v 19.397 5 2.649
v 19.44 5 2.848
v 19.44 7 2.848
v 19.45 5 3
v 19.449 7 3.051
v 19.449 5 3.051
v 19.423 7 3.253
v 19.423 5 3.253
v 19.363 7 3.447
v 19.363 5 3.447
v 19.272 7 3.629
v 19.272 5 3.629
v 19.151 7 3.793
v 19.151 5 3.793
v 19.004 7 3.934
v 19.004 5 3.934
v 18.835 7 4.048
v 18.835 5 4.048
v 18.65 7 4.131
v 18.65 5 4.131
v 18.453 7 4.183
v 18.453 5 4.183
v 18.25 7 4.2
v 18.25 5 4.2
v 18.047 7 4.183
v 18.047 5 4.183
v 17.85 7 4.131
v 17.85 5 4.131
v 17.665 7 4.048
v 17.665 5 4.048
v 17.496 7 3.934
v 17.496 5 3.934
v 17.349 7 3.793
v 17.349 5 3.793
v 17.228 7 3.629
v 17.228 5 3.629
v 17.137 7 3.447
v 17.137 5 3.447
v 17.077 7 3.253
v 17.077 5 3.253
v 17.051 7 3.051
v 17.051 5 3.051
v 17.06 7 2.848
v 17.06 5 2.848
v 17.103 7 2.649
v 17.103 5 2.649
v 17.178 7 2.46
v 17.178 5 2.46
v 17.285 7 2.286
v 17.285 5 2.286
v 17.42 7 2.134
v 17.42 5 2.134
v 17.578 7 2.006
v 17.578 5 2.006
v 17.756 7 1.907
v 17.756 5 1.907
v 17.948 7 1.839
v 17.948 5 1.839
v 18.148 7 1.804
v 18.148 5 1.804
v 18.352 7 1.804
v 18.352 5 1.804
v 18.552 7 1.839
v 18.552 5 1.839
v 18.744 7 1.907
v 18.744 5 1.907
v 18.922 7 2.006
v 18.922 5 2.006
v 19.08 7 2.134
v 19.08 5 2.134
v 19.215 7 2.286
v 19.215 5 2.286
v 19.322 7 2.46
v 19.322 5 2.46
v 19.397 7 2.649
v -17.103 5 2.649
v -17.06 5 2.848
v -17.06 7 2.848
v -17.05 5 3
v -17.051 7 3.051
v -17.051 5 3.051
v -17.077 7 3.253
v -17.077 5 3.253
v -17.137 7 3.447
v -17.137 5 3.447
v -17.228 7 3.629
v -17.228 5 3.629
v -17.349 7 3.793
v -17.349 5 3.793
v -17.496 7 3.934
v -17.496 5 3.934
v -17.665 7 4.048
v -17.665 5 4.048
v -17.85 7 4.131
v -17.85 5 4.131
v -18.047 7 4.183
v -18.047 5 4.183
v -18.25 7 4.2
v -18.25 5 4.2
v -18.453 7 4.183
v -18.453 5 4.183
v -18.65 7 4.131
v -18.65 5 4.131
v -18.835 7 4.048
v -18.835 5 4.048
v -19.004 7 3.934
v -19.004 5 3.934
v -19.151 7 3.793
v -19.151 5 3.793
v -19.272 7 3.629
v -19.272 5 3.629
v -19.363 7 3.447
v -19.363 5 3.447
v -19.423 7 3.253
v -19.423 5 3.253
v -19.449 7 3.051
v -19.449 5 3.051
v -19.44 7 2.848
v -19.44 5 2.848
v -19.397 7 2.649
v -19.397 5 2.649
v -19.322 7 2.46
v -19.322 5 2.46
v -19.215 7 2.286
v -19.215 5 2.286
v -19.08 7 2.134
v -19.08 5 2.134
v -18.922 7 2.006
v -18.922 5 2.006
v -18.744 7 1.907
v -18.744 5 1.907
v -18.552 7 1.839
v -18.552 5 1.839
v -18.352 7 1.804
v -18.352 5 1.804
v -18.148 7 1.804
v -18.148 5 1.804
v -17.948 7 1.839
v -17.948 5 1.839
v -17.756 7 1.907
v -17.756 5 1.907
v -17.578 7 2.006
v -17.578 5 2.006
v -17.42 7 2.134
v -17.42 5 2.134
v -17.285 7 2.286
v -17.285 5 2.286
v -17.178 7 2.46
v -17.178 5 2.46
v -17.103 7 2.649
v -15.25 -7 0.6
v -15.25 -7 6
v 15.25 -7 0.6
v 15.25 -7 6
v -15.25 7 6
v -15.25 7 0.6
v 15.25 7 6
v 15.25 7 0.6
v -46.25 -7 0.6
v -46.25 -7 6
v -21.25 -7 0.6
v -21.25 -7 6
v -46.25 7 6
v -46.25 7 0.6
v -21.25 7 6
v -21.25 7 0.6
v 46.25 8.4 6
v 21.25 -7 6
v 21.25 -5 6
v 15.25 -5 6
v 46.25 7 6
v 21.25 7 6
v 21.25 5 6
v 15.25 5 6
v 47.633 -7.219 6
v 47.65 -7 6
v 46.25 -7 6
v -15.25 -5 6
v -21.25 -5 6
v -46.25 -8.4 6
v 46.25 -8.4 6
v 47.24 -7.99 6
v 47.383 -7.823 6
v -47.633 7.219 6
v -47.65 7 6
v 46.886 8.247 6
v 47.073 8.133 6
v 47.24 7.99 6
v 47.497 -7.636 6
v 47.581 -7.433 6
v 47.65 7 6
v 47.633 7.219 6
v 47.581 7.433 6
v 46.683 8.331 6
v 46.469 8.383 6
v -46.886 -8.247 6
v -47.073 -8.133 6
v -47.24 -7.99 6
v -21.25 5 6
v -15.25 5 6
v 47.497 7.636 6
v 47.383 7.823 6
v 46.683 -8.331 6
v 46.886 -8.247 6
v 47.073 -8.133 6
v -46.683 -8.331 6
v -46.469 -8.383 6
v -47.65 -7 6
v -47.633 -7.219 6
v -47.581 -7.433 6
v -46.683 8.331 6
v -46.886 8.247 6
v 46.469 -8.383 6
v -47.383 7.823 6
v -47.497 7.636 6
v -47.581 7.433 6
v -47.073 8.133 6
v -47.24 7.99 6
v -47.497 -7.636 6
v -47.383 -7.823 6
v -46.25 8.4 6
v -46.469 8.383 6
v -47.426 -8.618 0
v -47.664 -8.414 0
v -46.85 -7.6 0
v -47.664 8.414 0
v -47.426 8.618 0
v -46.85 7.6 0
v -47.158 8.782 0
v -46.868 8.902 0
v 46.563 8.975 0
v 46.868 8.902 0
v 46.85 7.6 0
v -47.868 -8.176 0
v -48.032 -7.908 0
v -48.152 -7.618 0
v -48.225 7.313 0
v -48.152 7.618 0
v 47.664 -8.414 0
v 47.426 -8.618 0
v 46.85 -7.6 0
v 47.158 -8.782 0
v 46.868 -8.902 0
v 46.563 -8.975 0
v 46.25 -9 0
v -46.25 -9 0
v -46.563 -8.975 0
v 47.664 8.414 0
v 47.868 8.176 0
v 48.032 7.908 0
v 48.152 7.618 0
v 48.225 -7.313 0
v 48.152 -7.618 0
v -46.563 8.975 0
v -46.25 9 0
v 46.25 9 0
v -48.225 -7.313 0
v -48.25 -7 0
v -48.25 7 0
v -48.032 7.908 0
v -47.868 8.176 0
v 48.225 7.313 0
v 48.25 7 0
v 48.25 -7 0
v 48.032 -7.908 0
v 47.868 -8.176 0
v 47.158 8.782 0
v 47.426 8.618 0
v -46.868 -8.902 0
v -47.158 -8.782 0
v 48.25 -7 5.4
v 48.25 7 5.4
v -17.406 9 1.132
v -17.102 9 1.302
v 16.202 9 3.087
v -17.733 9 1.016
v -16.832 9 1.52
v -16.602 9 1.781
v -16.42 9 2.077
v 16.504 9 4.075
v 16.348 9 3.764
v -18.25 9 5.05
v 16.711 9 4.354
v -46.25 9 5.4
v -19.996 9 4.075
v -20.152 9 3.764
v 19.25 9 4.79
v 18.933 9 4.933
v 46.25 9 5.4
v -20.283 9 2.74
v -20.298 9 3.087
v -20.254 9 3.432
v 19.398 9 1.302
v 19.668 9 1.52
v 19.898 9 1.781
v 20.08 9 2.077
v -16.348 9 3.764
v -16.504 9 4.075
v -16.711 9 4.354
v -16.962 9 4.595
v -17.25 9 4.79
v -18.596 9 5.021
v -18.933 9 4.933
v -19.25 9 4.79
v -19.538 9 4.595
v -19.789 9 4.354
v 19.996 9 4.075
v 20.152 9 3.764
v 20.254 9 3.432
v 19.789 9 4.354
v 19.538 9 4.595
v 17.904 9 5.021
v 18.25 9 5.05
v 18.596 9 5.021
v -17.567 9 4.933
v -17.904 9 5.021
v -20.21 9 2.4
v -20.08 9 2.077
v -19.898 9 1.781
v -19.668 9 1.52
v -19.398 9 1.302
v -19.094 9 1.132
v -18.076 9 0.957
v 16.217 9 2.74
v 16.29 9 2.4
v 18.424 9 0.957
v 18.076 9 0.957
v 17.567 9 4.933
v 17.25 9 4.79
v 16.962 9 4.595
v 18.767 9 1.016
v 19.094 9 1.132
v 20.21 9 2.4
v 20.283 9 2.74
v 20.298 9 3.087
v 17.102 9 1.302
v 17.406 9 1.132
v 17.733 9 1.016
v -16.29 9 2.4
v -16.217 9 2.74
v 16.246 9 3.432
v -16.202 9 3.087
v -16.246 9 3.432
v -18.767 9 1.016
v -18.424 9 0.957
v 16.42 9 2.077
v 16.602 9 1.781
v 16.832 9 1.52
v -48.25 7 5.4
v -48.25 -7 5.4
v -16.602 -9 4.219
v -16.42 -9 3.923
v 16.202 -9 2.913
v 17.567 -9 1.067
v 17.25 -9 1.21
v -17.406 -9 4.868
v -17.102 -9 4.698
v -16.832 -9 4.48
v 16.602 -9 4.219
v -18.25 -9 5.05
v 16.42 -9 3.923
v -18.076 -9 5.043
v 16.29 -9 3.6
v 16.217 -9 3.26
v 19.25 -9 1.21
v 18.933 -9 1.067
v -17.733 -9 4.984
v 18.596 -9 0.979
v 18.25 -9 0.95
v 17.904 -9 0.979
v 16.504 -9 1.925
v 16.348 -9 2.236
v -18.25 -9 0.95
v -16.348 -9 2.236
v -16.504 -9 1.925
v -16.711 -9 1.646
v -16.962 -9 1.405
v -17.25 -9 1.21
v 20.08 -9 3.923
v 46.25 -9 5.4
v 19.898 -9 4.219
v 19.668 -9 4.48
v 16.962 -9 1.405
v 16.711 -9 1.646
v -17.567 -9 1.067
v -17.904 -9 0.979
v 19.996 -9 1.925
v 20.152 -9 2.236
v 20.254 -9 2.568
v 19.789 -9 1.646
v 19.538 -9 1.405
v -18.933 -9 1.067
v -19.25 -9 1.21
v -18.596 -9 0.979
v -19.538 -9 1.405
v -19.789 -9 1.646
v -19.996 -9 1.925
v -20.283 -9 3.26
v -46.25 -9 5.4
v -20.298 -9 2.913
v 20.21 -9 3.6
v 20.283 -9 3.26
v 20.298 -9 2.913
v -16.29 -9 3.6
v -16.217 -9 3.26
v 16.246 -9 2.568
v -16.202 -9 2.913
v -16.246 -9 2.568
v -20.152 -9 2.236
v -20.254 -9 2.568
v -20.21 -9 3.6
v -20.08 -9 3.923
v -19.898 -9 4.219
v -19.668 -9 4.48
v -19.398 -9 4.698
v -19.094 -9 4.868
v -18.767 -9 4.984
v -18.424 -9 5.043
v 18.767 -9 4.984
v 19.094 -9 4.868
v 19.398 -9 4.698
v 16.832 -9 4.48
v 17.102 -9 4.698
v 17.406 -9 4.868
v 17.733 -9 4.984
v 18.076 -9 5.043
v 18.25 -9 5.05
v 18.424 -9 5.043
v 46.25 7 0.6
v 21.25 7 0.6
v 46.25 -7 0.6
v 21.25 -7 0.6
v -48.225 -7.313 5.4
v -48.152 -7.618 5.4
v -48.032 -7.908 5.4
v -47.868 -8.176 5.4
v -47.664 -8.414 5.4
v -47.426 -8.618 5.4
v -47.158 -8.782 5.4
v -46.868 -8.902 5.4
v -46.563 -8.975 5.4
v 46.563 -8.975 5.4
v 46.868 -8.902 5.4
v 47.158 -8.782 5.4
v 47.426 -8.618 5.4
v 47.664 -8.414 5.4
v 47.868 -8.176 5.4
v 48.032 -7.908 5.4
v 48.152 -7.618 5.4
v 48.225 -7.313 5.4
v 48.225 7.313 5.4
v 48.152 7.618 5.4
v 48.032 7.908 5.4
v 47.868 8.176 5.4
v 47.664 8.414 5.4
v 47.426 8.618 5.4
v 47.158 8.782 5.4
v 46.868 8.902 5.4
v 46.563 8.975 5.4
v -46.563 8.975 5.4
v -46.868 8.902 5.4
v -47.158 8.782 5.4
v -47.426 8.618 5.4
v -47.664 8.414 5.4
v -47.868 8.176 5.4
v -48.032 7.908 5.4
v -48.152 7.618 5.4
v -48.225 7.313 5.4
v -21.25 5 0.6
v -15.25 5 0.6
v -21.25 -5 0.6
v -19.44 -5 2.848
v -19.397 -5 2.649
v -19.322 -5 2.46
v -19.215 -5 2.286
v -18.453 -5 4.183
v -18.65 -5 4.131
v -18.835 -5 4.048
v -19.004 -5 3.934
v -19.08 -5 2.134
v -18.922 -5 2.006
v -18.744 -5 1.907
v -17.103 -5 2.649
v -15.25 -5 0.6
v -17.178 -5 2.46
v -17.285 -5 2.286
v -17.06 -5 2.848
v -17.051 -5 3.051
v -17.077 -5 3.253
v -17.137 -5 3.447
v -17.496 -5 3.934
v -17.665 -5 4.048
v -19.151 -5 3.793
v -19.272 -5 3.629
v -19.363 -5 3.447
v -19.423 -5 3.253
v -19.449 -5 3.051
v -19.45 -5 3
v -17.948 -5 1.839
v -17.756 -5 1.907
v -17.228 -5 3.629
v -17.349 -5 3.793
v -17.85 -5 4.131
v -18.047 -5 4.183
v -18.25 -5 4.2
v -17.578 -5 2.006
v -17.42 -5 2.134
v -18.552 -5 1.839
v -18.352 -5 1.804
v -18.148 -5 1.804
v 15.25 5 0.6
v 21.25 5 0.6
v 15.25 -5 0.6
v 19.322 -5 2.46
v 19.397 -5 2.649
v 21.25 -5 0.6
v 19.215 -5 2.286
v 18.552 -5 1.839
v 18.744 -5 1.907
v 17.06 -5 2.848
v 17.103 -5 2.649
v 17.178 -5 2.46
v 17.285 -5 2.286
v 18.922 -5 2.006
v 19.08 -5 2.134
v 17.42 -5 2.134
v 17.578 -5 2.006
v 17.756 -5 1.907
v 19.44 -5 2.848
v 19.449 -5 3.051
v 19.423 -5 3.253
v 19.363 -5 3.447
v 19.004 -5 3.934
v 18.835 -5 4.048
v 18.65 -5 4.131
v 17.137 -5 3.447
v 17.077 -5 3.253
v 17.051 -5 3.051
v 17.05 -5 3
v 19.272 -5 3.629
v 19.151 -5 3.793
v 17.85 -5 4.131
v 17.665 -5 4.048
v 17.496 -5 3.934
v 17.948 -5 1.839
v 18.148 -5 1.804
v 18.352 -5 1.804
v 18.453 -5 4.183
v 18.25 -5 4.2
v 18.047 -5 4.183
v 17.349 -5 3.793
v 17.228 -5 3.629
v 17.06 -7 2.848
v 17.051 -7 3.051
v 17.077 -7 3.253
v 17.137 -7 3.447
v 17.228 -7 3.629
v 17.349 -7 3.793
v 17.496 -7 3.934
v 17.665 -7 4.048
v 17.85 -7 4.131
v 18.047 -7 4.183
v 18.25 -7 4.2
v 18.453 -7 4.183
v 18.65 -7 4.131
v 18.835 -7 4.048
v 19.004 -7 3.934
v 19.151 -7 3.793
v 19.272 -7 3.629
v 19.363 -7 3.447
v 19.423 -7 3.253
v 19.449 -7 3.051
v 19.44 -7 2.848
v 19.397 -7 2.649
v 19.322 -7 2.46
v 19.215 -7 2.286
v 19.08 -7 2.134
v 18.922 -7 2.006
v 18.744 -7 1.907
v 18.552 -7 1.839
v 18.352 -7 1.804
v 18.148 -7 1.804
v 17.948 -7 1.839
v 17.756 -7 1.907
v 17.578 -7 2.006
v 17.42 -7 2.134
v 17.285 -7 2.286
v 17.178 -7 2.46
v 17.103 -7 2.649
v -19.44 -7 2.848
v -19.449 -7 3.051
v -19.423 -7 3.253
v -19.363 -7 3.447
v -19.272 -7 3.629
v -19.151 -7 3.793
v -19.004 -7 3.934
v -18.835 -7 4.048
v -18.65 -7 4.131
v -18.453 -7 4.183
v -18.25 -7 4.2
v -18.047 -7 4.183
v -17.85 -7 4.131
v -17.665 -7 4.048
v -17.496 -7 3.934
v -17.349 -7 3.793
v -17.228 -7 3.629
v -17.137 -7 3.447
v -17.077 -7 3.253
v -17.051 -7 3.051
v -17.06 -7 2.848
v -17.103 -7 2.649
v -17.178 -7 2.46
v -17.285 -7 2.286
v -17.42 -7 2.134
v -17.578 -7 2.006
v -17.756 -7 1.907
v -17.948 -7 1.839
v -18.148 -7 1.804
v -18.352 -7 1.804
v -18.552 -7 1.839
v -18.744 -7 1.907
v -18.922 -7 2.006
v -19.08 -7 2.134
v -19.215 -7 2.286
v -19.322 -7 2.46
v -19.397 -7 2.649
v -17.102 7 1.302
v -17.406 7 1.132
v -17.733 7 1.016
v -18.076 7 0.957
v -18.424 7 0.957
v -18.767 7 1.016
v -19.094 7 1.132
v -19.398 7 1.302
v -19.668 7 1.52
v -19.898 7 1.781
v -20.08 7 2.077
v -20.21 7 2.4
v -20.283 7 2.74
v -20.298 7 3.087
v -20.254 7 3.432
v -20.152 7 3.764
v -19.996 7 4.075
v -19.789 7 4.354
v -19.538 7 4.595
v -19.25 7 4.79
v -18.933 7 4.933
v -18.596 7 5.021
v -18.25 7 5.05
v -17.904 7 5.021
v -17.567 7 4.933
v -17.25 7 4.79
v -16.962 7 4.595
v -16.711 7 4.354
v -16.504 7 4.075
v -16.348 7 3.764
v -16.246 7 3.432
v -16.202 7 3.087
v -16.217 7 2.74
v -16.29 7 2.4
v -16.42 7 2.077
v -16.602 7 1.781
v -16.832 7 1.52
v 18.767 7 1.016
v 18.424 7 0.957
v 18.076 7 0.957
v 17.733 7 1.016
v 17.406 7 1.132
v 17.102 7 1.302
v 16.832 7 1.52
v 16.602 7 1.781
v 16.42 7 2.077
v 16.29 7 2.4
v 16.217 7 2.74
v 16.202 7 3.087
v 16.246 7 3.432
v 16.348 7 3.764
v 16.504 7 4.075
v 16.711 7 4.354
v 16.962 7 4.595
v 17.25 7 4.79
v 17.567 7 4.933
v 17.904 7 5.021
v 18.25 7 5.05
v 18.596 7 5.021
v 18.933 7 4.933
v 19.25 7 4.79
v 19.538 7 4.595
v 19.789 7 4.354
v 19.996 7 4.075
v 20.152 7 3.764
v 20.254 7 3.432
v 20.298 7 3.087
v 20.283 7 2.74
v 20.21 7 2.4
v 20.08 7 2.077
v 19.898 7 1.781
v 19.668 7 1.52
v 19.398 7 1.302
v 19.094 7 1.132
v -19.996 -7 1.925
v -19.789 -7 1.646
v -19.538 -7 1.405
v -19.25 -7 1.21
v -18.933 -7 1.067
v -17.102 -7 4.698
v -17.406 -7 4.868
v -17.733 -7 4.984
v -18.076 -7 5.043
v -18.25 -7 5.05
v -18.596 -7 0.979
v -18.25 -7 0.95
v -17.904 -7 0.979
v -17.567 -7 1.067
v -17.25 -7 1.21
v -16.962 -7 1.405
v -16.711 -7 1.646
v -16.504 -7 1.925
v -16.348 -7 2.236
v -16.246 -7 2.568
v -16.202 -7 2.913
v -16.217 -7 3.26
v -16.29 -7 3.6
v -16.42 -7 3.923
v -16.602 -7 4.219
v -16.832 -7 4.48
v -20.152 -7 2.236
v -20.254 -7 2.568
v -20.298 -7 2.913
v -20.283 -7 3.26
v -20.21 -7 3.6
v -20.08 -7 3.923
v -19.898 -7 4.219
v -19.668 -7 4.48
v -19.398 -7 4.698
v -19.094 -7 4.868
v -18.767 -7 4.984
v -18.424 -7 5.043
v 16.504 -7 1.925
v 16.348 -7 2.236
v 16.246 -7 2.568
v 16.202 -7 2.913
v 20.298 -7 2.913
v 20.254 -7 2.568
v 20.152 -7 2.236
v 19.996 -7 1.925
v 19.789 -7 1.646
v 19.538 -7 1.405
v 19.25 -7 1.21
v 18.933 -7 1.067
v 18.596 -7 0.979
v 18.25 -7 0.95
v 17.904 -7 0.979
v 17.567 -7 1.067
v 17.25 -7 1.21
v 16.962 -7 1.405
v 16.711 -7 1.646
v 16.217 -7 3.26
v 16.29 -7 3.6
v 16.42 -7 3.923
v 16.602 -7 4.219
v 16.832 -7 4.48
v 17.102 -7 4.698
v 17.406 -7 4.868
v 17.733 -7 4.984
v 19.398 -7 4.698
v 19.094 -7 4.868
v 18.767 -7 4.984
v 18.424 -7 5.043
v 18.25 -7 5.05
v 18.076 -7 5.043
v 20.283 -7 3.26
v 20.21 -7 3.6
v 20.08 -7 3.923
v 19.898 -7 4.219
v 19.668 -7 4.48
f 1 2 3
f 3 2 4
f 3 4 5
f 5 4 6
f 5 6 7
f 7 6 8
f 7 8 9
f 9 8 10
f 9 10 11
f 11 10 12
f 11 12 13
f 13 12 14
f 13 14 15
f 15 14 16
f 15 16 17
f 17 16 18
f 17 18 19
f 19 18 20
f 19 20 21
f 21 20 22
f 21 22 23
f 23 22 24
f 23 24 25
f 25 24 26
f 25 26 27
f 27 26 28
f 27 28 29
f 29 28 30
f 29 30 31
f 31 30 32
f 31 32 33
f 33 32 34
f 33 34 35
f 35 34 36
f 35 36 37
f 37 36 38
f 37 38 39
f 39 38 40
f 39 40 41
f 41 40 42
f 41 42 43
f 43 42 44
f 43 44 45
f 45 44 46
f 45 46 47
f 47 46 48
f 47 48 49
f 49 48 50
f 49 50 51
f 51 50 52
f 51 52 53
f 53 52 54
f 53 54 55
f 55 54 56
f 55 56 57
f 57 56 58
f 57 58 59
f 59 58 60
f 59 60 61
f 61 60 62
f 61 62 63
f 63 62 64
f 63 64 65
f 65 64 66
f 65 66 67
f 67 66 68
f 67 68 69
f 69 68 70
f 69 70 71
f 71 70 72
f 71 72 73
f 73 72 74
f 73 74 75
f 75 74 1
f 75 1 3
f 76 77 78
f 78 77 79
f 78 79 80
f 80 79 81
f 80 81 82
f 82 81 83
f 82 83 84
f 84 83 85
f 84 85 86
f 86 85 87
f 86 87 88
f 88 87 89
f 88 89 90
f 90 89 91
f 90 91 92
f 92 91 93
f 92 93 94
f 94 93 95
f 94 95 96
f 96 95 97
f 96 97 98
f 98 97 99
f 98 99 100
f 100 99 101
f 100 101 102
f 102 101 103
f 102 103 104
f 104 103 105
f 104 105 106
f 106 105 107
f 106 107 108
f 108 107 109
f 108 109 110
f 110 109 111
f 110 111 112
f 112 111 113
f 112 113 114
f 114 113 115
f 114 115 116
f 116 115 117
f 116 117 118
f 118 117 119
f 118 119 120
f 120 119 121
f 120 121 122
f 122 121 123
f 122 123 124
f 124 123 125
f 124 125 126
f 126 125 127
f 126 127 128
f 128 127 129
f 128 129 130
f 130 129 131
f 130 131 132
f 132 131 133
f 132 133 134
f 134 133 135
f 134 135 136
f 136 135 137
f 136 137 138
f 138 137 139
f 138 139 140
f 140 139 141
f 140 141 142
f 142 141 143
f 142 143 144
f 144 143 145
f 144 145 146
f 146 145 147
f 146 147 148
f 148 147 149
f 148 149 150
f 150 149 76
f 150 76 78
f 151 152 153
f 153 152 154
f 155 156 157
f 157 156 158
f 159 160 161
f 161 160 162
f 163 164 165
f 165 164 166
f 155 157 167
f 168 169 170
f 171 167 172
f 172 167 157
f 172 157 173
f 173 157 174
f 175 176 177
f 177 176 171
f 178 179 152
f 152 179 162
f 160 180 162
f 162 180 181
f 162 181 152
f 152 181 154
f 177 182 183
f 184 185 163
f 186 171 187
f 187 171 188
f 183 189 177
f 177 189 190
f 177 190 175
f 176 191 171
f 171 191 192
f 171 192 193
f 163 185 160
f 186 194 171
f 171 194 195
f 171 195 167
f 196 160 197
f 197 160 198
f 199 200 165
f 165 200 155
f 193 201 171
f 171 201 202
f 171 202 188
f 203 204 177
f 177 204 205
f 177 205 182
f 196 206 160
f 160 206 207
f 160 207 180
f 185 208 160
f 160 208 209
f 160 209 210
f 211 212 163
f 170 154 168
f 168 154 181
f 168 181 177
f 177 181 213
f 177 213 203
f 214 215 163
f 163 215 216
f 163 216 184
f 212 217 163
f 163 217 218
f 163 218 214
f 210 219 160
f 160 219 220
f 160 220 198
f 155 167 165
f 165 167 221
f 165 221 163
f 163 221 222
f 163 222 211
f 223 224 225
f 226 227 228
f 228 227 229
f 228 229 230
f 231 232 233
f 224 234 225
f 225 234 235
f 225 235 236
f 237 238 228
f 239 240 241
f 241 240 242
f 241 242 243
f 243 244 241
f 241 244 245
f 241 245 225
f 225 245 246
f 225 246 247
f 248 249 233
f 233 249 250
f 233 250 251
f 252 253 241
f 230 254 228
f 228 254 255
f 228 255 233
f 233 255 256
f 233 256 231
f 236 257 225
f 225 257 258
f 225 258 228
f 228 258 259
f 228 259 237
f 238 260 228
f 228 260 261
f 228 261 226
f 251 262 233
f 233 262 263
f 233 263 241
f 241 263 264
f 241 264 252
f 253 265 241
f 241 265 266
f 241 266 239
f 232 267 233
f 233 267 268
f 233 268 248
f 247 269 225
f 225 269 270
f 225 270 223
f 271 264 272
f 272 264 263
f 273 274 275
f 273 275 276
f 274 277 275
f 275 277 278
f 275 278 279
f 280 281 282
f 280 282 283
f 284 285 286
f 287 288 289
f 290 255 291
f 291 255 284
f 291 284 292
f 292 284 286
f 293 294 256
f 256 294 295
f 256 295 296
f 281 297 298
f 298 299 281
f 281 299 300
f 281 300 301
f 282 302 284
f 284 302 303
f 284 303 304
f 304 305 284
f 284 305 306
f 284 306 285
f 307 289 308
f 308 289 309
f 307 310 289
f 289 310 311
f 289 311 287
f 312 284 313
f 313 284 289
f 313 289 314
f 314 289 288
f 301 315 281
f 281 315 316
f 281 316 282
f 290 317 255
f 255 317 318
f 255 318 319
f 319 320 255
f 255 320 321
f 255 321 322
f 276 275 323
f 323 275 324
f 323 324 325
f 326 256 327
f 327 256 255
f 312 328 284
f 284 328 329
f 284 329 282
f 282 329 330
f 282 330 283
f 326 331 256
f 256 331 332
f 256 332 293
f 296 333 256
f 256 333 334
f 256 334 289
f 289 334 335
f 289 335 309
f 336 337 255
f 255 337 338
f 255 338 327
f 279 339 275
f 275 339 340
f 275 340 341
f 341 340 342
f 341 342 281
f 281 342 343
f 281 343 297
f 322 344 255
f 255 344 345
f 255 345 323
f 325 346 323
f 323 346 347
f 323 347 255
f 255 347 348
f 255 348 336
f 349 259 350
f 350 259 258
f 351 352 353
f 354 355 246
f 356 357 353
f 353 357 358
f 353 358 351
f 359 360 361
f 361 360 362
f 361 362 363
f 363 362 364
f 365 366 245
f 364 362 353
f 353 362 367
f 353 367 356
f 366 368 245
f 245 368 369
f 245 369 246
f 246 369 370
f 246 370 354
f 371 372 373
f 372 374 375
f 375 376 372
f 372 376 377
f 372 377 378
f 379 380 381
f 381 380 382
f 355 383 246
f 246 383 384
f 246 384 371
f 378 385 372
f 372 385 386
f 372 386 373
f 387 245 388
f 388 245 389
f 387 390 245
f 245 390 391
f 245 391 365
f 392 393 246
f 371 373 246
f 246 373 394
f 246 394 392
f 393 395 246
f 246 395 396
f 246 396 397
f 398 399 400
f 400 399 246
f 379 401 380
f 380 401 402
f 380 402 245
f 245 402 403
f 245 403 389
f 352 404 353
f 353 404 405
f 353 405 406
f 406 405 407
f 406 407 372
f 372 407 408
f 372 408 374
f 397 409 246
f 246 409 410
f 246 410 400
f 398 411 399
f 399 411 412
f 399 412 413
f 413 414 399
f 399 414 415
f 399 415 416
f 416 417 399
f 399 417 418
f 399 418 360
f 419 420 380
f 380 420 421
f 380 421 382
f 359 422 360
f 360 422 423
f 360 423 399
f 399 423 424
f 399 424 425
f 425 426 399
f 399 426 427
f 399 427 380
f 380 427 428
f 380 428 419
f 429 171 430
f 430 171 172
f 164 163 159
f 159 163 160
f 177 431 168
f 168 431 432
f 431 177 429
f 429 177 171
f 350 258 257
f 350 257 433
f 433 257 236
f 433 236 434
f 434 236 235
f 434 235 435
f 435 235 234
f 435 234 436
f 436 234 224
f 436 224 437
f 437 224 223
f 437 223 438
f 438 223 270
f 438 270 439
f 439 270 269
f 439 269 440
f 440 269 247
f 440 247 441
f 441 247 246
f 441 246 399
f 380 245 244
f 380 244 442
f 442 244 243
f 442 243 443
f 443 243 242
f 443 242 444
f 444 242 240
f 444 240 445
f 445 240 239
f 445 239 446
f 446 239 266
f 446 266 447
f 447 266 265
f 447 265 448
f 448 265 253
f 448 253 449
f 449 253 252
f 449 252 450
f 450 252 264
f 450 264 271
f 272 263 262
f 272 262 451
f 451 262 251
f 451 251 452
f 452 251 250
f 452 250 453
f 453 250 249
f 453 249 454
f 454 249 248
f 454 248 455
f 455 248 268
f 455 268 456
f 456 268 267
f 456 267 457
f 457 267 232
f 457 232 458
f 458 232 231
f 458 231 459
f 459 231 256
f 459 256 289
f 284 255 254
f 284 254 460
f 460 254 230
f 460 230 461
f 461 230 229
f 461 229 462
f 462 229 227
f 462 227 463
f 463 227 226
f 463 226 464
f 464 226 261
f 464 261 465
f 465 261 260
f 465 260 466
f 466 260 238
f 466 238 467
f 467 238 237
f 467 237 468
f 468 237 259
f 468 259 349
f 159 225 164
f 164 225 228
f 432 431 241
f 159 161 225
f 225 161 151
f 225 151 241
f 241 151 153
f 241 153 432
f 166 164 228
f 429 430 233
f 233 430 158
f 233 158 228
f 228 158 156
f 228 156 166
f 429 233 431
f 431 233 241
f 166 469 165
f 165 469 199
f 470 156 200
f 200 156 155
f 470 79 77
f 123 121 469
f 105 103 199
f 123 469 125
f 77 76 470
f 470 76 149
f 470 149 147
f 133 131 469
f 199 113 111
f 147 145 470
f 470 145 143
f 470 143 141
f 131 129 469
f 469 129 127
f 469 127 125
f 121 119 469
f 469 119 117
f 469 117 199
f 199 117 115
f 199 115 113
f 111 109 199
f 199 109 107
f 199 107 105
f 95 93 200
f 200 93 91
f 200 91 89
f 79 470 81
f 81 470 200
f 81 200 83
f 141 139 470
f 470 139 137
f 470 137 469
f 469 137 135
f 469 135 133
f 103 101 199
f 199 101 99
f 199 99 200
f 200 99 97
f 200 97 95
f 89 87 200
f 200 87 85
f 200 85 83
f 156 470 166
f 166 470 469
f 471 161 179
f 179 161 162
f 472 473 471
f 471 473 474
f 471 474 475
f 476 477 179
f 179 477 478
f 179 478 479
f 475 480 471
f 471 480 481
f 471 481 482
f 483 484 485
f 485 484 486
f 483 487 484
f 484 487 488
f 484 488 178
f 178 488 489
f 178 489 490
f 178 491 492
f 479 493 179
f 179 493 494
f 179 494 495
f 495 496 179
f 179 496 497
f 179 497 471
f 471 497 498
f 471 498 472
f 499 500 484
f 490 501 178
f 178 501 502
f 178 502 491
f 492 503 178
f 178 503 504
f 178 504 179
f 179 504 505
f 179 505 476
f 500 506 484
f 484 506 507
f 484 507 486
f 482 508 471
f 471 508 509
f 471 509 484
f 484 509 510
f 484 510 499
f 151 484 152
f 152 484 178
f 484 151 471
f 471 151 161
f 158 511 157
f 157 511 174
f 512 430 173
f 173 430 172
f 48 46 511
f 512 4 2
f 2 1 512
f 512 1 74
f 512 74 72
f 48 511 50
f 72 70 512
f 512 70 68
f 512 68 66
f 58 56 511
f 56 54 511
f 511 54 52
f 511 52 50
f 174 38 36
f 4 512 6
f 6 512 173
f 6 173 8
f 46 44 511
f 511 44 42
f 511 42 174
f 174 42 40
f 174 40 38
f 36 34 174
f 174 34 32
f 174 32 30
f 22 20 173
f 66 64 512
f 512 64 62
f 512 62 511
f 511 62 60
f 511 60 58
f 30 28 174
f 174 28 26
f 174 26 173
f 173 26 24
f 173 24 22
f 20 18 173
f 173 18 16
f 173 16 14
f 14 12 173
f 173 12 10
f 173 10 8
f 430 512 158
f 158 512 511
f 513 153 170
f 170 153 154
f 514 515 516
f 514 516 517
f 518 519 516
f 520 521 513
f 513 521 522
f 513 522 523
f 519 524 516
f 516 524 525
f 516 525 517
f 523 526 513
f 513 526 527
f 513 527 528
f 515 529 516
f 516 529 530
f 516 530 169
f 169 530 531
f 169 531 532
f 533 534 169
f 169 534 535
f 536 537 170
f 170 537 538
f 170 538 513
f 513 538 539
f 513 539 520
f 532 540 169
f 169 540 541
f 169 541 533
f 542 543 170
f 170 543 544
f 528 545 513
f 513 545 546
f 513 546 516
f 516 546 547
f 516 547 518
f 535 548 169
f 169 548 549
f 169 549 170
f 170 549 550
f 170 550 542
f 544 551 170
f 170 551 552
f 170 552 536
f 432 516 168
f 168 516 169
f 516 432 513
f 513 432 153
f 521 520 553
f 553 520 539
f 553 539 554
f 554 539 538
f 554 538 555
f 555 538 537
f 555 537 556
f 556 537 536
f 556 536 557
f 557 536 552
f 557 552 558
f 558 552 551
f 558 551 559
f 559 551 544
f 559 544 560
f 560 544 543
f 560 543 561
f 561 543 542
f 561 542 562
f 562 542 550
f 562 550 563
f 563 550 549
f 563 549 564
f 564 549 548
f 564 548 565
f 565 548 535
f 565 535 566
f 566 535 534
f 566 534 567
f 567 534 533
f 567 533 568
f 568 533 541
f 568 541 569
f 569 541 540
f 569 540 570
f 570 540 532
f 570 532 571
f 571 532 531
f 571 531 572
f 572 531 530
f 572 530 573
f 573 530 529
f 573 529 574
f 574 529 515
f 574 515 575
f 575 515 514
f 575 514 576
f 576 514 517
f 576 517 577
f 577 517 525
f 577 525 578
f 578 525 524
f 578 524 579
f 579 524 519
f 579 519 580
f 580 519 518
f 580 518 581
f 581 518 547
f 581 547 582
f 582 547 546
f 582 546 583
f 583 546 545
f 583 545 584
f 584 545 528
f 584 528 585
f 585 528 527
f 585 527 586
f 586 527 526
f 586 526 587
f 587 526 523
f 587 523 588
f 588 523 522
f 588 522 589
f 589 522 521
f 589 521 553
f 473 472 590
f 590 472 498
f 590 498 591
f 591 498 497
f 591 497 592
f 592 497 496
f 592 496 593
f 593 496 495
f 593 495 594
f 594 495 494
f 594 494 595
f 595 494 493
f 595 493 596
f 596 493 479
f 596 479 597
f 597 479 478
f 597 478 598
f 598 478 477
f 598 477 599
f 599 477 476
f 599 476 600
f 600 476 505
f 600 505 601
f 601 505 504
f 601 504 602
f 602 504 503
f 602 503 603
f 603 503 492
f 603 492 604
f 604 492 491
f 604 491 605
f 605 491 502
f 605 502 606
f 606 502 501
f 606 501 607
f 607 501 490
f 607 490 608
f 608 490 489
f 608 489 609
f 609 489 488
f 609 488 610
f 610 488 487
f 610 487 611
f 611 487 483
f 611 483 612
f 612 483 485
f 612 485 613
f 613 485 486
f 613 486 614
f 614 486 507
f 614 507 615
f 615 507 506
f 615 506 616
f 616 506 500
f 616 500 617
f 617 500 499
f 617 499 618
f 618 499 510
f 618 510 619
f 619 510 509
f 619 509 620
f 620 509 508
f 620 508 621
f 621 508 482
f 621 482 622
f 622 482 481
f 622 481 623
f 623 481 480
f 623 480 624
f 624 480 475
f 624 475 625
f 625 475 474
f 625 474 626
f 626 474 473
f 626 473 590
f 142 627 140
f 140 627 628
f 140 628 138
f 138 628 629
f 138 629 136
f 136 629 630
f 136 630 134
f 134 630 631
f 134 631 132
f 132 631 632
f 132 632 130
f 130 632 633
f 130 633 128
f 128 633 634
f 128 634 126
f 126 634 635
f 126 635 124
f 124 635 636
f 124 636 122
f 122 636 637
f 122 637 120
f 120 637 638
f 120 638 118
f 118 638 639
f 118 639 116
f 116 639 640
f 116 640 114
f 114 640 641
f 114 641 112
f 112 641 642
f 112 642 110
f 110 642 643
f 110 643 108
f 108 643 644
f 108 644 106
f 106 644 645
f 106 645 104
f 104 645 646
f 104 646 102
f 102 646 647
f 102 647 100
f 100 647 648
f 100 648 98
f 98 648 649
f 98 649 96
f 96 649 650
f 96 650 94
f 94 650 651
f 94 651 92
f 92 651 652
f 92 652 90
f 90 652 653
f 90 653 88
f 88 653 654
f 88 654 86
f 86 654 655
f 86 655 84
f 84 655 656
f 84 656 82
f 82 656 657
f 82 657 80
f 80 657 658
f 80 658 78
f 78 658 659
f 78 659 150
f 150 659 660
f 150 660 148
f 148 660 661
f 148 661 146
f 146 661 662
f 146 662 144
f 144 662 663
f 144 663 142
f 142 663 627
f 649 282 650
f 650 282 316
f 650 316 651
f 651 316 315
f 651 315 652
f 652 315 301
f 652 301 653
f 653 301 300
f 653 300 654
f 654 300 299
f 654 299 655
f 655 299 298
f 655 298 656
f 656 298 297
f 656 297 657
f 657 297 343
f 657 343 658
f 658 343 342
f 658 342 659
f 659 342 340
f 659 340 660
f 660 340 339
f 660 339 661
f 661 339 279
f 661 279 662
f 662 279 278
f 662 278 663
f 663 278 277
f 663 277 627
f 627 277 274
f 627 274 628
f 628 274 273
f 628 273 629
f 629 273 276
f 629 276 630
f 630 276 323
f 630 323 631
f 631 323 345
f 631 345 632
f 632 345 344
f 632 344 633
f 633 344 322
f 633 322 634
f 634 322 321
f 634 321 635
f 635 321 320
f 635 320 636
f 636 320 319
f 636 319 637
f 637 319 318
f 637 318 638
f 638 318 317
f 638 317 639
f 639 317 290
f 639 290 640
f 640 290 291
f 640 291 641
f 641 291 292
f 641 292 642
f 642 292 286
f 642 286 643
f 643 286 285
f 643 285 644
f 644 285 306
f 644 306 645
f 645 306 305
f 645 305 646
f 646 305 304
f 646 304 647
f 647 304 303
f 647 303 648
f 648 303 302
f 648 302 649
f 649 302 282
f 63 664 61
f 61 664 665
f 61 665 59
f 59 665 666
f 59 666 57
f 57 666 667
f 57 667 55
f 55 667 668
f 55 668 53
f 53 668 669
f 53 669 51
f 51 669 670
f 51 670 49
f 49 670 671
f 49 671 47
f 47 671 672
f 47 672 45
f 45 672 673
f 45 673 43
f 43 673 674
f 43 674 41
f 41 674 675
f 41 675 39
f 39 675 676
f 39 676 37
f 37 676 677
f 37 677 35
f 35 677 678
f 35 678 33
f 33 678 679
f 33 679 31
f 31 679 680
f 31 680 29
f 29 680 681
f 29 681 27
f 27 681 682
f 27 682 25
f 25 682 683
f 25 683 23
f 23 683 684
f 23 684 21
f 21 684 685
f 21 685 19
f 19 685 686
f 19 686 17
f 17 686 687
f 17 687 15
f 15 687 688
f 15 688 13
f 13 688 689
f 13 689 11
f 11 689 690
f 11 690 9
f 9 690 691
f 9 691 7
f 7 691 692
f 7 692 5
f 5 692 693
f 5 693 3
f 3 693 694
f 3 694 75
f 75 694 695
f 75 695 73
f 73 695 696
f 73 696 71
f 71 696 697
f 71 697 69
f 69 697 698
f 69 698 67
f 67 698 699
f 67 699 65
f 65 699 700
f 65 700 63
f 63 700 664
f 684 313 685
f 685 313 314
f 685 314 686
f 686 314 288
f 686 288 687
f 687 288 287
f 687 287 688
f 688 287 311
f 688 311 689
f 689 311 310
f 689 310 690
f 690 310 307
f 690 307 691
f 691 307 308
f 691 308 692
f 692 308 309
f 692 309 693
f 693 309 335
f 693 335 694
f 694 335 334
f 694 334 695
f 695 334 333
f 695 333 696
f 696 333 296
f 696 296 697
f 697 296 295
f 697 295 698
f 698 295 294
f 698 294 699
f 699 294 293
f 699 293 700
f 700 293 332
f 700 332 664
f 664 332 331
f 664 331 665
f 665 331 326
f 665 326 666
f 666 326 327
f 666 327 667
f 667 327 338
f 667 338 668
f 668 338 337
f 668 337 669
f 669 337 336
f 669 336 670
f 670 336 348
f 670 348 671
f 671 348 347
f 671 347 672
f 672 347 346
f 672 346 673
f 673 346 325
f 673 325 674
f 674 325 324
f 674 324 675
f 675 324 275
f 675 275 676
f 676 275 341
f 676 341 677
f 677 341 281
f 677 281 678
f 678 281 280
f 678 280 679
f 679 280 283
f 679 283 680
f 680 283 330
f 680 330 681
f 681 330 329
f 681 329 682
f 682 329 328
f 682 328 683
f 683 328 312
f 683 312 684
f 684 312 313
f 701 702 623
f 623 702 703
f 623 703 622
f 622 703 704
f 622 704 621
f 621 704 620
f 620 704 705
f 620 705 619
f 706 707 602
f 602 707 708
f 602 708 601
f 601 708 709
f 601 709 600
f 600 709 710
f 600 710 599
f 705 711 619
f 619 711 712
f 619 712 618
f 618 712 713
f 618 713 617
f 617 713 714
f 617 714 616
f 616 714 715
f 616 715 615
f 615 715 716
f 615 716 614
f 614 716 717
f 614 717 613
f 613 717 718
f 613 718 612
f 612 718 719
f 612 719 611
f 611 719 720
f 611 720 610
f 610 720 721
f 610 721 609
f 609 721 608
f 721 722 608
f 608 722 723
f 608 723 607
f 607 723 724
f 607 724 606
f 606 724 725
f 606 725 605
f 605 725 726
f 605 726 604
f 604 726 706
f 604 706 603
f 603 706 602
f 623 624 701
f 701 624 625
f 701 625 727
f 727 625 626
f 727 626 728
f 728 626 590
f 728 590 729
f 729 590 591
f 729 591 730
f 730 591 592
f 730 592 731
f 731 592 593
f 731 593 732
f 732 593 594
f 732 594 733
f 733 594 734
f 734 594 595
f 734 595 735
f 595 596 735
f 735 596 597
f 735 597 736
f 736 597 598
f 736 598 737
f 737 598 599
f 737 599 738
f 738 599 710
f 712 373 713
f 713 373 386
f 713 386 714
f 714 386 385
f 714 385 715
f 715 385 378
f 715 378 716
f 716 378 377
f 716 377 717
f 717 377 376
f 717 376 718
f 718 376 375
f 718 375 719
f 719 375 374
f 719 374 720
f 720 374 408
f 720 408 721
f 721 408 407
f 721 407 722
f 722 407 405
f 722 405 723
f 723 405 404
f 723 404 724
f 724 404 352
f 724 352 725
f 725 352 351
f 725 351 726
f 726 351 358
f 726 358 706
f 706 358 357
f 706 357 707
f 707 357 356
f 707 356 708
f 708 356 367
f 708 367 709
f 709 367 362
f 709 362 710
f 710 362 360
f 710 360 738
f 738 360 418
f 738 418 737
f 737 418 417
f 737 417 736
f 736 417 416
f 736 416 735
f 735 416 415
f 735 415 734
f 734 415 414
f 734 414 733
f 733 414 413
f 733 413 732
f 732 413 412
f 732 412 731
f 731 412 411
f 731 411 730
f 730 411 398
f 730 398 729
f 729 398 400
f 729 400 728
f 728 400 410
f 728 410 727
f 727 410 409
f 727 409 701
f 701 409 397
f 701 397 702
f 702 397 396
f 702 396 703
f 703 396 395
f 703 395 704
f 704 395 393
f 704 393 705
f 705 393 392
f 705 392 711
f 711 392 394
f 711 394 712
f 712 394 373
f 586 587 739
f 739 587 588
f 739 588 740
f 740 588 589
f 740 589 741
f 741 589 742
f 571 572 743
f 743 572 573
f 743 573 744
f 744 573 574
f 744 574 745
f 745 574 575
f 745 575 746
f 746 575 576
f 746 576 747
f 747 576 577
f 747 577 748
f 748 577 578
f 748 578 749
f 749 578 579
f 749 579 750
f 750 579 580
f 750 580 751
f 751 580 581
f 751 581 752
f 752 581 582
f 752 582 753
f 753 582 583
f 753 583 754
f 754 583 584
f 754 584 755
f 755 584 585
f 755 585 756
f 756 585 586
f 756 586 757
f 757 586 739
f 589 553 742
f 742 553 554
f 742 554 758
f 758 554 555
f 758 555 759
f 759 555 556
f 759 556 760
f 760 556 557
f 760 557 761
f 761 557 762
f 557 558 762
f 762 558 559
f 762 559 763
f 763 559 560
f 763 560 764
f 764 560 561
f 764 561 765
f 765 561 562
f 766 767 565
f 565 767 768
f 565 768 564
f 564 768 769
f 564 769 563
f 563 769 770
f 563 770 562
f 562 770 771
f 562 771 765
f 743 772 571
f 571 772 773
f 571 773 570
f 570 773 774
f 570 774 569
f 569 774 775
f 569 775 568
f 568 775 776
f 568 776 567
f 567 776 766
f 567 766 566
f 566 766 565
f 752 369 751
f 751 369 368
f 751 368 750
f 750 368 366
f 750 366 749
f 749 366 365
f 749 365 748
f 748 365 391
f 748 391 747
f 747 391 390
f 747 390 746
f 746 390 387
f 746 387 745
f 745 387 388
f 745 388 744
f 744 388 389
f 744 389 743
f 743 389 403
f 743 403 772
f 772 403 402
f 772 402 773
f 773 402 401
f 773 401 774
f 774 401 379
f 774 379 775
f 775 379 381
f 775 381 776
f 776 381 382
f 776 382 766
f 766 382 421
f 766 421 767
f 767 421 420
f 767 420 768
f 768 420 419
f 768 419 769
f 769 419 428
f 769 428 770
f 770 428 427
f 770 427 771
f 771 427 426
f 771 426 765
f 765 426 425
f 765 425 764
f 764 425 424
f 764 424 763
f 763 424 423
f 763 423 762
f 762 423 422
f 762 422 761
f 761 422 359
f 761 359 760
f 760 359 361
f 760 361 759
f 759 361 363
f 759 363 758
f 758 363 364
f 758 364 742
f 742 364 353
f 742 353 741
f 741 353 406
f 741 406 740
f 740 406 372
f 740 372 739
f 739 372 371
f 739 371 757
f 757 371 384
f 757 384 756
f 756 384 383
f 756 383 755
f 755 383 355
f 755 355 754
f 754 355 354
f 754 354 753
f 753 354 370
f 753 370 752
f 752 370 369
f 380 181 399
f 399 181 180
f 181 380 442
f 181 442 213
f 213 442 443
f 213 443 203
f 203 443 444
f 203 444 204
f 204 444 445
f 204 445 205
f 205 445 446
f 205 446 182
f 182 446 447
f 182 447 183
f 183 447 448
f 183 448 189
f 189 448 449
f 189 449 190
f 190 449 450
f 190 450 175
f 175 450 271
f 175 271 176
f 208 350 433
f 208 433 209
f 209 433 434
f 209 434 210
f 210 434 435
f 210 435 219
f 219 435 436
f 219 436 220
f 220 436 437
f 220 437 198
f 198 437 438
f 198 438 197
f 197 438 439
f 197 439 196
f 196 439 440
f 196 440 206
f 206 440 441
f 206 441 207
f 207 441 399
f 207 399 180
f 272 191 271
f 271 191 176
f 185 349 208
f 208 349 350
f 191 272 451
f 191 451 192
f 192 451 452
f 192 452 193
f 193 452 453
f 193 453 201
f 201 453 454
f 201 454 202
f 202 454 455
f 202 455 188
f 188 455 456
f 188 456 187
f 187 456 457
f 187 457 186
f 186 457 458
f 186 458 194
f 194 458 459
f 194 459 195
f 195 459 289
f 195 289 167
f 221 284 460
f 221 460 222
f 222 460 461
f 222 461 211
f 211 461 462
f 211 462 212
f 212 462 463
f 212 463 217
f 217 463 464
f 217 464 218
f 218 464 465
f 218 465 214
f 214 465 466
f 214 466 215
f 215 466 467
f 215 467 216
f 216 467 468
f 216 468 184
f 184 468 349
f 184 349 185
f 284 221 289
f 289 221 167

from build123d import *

# Parameters (mm, degrees)
SKETCH_1_W          = 96.5
SKETCH_1_H          = 18
SKETCH_1_W_2        = 92.5
SKETCH_1_H_2        = 14
EXTRUDE_1_DEPTH     = 6
FILLET_1_R          = 2
CHAMFER_1_SIZE      = 0.6
SKETCH_2_W          = 6
SKETCH_2_H          = 2
EXTRUDE_2_DEPTH     = 5.4
SKETCH_3_R          = 1.2
CUT_EXTRUDE_1_DEPTH = 52.846528331
SKETCH_4_R          = 2.05
CUT_EXTRUDE_2_DEPTH = 2
CUT_EXTRUDE_START   = -16
SKETCH_4_2_R        = 2.05
CUT_EXTRUDE_3_DEPTH = 2
CHAMFER_2_SIZE      = 0.6


with BuildPart() as part:
    # 草图1 → 凸台-拉伸1 (new body)
    with BuildSketch(Plane.XY):
        Rectangle(SKETCH_1_W, SKETCH_1_H)
        Rectangle(SKETCH_1_W_2, SKETCH_1_H_2, mode=Mode.SUBTRACT)
    extrude(amount=EXTRUDE_1_DEPTH)

    # 圆角1
    fillet_1_edges = [part.edges().sort_by_distance(p)[0] for p in [
        (48.25, -9, 3),
        (-48.25, -9, 3),
        (-48.25, 9, 3),
        (48.25, 9, 3),
    ]]
    fillet(fillet_1_edges, radius=FILLET_1_R)

    # 倒角1
    chamfer_1_edges = [part.edges().sort_by_distance(p)[0] for p in [
        (0, 7, 0),
        (-46.25, 0, 0),
        (0, -7, 0),
        (46.25, 0, 0),
    ]]
    chamfer(chamfer_1_edges, length=CHAMFER_1_SIZE)

    # 草图2 → 凸台-拉伸2 (add)
    with BuildSketch(Plane.XY.offset(6)):
        with Locations((-18.25, 6)):
            Rectangle(SKETCH_2_W, SKETCH_2_H)
        with Locations((-18.25, -6)):
            Rectangle(SKETCH_2_W, SKETCH_2_H)
        with Locations((18.25, 6)):
            Rectangle(SKETCH_2_W, SKETCH_2_H)
        with Locations((18.25, -6)):
            Rectangle(SKETCH_2_W, SKETCH_2_H)
    extrude(amount=-EXTRUDE_2_DEPTH)

    # 草图3 → 切除-拉伸1 (cut, through all)
    with BuildSketch(Plane(origin=(0, 9, 0), x_dir=(1, 0, 0), z_dir=(0, 1, 0))):
        with Locations(Location((-18.25, -3, 0), (0, 0, 270))):
            Circle(SKETCH_3_R)
        with Locations(Location((18.25, -3, 0), (0, 0, 270))):
            Circle(SKETCH_3_R)
    extrude(amount=-CUT_EXTRUDE_1_DEPTH, mode=Mode.SUBTRACT)

    # 草图4 → 切除-拉伸2 (cut)
    with BuildSketch(Plane(origin=(0, 9, 0), x_dir=(1, 0, 0), z_dir=(0, 1, 0))):
        with Locations(Location((-18.25, -3, 0), (0, 0, 270))):
            Circle(SKETCH_4_R)
        with Locations(Location((18.25, -3, 0), (0, 0, 270))):
            Circle(SKETCH_4_R)
    extrude(amount=-CUT_EXTRUDE_2_DEPTH, mode=Mode.SUBTRACT)

    # 草图4<2> → 切除-拉伸3 (cut)
    with BuildSketch(Plane(origin=(0, 9, 0), x_dir=(1, 0, 0), z_dir=(0, 1, 0)).offset(CUT_EXTRUDE_START)):
        with Locations(Location((-18.25, -3, 0), (0, 0, 270))):
            Circle(SKETCH_4_2_R)
        with Locations(Location((18.25, -3, 0), (0, 0, 270))):
            Circle(SKETCH_4_2_R)
    extrude(amount=-CUT_EXTRUDE_3_DEPTH, mode=Mode.SUBTRACT)

    # 倒角2
    chamfer_2_edges = [part.edges().sort_by_distance(p)[0] for p in [
        (0, -9, 6),
        (-48.25, 0, 6),
        (48.25, 0, 6),
        (0, 9, 6),
        (-47.664213562, 8.414213562, 6),
        (47.664213562, 8.414213562, 6),
        (47.664213562, -8.414213562, 6),
        (-47.664213562, -8.414213562, 6),
    ]]
    chamfer(chamfer_2_edges, length=CHAMFER_2_SIZE)


solid = part.part
